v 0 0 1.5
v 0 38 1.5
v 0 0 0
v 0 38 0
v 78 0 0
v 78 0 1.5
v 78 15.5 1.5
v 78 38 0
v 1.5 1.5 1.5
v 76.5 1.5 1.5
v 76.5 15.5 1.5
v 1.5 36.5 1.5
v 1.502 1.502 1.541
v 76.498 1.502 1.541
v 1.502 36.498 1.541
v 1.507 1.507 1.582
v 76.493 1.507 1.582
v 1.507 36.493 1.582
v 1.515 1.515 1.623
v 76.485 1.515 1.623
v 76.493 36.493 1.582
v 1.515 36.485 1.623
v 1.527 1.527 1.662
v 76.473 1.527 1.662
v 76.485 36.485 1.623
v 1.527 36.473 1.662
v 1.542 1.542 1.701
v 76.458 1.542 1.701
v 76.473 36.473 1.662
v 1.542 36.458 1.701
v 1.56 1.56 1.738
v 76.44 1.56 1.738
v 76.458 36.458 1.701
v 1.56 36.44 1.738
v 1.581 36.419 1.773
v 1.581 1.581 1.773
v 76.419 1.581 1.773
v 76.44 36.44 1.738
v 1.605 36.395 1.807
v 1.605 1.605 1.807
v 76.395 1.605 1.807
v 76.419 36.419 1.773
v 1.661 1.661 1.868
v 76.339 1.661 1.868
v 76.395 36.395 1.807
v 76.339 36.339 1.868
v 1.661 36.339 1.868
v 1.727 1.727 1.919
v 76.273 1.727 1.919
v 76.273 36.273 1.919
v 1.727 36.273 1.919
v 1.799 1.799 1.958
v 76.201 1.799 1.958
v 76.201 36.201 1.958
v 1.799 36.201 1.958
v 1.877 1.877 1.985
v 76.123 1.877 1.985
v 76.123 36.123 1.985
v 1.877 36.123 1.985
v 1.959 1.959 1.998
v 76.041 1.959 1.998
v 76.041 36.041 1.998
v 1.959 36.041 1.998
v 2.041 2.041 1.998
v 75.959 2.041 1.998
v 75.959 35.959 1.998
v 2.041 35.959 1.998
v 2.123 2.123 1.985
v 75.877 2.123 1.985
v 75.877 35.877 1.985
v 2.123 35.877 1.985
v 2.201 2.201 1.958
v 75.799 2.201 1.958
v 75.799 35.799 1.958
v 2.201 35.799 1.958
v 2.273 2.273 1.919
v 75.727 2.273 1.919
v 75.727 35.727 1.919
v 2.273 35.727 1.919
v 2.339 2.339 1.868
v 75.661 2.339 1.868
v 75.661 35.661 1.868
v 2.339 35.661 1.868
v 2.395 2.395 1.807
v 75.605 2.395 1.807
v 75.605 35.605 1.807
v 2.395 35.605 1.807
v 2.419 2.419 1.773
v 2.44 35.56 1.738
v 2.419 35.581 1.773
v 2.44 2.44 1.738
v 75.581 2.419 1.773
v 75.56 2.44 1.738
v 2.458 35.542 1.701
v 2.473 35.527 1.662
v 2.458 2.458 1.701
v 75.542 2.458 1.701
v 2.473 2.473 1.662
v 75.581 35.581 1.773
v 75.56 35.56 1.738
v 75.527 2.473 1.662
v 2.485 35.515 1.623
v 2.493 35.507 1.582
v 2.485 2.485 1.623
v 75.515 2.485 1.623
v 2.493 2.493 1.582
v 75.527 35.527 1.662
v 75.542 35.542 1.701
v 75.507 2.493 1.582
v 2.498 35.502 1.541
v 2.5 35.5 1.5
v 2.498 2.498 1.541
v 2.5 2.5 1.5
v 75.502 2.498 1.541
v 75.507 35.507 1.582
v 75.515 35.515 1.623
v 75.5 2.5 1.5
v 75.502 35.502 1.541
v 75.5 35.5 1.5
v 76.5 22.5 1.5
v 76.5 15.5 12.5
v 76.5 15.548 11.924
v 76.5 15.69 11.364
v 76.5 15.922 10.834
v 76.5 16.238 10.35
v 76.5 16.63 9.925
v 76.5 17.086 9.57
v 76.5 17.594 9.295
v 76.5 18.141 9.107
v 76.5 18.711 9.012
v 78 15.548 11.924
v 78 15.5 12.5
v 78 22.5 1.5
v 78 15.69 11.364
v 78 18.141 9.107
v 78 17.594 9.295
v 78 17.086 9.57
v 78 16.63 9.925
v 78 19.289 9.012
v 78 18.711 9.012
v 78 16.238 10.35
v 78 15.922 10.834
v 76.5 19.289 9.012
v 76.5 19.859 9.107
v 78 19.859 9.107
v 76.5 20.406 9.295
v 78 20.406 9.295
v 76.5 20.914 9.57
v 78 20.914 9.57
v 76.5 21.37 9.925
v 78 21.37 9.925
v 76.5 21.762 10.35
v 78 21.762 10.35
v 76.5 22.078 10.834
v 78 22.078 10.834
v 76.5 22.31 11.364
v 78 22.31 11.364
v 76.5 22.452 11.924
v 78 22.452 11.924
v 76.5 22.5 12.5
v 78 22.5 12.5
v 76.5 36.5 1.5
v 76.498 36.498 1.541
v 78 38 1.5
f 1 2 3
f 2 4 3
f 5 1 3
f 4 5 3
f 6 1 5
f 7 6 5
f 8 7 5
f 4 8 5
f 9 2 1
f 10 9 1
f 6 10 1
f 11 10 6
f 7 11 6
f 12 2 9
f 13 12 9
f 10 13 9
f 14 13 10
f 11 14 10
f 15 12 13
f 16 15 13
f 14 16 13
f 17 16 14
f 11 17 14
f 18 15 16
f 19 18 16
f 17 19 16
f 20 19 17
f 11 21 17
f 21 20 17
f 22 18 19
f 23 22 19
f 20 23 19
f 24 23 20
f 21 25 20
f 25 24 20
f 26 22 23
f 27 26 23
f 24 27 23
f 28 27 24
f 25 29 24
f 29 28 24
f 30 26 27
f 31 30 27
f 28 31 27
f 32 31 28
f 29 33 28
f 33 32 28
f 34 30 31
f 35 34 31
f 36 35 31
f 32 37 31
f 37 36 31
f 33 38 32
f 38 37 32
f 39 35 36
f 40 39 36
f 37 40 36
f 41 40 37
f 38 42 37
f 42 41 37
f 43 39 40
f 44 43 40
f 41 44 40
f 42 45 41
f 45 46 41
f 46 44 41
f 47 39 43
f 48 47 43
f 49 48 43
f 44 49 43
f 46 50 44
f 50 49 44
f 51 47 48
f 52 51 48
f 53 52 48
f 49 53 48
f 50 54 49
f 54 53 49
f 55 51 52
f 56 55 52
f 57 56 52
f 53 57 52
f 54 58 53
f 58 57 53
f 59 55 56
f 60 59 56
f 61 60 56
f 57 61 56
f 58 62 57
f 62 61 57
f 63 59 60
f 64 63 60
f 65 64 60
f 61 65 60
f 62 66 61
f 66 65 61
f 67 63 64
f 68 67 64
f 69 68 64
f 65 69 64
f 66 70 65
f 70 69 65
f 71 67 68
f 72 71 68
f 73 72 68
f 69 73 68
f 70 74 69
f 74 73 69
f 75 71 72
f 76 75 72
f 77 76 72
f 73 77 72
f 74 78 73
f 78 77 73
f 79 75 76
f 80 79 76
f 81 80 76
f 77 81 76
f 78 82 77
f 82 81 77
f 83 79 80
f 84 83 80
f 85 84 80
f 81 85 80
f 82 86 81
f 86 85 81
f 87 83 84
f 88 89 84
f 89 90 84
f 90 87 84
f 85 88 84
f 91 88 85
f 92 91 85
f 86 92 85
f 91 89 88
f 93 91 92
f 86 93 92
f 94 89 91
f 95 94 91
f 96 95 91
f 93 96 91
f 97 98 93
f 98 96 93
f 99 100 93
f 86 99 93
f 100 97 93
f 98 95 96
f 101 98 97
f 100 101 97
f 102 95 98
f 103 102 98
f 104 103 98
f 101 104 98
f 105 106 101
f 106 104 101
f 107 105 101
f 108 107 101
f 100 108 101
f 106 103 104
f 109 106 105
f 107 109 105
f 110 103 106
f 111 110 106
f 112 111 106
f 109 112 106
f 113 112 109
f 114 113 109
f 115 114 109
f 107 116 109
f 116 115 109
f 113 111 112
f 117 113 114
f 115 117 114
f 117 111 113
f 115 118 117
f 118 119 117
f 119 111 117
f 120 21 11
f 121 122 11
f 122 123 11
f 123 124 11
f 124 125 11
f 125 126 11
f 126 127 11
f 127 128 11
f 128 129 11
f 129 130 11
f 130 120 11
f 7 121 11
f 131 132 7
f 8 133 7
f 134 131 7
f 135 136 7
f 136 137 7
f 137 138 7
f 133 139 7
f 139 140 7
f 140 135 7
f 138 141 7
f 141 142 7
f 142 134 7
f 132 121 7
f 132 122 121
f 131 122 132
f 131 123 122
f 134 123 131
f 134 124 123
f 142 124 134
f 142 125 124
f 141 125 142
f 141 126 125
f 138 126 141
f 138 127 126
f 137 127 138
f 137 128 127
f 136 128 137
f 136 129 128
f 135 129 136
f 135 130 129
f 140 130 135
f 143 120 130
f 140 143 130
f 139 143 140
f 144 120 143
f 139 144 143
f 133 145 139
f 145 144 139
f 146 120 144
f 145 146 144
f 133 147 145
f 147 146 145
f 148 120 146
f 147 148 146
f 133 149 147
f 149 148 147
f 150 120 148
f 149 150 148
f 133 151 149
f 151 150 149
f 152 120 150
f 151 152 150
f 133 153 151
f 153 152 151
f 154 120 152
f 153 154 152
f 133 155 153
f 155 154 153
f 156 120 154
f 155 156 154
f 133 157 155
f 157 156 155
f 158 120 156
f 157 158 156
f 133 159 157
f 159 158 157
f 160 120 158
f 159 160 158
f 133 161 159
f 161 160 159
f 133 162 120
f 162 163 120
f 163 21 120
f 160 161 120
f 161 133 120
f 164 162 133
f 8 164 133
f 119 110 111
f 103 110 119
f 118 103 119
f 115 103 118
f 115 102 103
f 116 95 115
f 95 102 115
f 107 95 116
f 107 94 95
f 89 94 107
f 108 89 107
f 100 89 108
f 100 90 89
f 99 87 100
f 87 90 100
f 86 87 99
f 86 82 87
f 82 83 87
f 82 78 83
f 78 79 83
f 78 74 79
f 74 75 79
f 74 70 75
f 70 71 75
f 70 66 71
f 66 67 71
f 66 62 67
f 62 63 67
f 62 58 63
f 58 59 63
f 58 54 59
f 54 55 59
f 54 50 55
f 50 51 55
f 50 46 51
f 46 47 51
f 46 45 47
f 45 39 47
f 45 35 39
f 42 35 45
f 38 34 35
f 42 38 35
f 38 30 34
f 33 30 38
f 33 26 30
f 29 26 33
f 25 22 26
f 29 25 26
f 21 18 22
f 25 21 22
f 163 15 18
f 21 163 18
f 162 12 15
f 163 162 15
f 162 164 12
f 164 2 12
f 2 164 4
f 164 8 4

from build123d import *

# Parameters (mm, degrees)
ESQUISSE1_W             = 78
ESQUISSE1_H             = 38
BOSS_EXTRU_1_DEPTH      = 1.5
BALAYAGE1_PROFILE_R     = 0.5
ESQUISSE14_W            = 1.5
ESQUISSE14_H            = 7
BOSS_EXTRU_2_DEPTH      = 11
ENL_V_MAT_EXTRU_1_DEPTH = 11


with BuildPart() as part:
    # Esquisse1 → Boss.-Extru.1 (new body)
    with BuildSketch(Plane.XY):
        with Locations((39, 19)):
            Rectangle(ESQUISSE1_W, ESQUISSE1_H)
    extrude(amount=BOSS_EXTRU_1_DEPTH)

    # Balayage1: sweep along a curve in space
    with BuildLine() as balayage1_path:
        Line((2, 2, 1.5), (76, 2, 1.5))
        Line((76, 2, 1.5), (76, 36, 1.5))
        Line((76, 36, 1.5), (2, 36, 1.5))
        Line((2, 36, 1.5), (2, 2, 1.5))
    # Balayage1 profile (on start of the path) → Balayage1 (sweep)
    with BuildSketch(Plane(origin=(2, 2, 1.5), x_dir=(0, 0, 1), z_dir=(1, 0, 0))):
        Circle(BALAYAGE1_PROFILE_R)
    sweep(path=balayage1_path.line, transition=Transition.RIGHT)

    # Esquisse14 → Boss.-Extru.2 (add)
    with BuildSketch(Plane.XY.offset(1.5)):
        with Locations((77.25, 19)):
            Rectangle(ESQUISSE14_W, ESQUISSE14_H)
    extrude(amount=BOSS_EXTRU_2_DEPTH)

    # Esquisse15 → Enlèv. mat.-Extru.1 (cut)
    with BuildSketch(Plane(origin=(78, 0, 0), x_dir=(0, 0, -1), z_dir=(1, 0, 0))):
        with BuildLine():
            Line((-12.5, 15.5), (-14.376884621, 15.5))
            ThreePointArc((-14.376884621, 15.5), (-17.876884621, 19), (-14.376884621, 22.5))
            Line((-14.376884621, 22.5), (-12.5, 22.5))
            ThreePointArc((-12.5, 22.5), (-9, 19), (-12.5, 15.5))
        make_face()
    extrude(amount=-ENL_V_MAT_EXTRU_1_DEPTH, mode=Mode.SUBTRACT)


solid = part.part
